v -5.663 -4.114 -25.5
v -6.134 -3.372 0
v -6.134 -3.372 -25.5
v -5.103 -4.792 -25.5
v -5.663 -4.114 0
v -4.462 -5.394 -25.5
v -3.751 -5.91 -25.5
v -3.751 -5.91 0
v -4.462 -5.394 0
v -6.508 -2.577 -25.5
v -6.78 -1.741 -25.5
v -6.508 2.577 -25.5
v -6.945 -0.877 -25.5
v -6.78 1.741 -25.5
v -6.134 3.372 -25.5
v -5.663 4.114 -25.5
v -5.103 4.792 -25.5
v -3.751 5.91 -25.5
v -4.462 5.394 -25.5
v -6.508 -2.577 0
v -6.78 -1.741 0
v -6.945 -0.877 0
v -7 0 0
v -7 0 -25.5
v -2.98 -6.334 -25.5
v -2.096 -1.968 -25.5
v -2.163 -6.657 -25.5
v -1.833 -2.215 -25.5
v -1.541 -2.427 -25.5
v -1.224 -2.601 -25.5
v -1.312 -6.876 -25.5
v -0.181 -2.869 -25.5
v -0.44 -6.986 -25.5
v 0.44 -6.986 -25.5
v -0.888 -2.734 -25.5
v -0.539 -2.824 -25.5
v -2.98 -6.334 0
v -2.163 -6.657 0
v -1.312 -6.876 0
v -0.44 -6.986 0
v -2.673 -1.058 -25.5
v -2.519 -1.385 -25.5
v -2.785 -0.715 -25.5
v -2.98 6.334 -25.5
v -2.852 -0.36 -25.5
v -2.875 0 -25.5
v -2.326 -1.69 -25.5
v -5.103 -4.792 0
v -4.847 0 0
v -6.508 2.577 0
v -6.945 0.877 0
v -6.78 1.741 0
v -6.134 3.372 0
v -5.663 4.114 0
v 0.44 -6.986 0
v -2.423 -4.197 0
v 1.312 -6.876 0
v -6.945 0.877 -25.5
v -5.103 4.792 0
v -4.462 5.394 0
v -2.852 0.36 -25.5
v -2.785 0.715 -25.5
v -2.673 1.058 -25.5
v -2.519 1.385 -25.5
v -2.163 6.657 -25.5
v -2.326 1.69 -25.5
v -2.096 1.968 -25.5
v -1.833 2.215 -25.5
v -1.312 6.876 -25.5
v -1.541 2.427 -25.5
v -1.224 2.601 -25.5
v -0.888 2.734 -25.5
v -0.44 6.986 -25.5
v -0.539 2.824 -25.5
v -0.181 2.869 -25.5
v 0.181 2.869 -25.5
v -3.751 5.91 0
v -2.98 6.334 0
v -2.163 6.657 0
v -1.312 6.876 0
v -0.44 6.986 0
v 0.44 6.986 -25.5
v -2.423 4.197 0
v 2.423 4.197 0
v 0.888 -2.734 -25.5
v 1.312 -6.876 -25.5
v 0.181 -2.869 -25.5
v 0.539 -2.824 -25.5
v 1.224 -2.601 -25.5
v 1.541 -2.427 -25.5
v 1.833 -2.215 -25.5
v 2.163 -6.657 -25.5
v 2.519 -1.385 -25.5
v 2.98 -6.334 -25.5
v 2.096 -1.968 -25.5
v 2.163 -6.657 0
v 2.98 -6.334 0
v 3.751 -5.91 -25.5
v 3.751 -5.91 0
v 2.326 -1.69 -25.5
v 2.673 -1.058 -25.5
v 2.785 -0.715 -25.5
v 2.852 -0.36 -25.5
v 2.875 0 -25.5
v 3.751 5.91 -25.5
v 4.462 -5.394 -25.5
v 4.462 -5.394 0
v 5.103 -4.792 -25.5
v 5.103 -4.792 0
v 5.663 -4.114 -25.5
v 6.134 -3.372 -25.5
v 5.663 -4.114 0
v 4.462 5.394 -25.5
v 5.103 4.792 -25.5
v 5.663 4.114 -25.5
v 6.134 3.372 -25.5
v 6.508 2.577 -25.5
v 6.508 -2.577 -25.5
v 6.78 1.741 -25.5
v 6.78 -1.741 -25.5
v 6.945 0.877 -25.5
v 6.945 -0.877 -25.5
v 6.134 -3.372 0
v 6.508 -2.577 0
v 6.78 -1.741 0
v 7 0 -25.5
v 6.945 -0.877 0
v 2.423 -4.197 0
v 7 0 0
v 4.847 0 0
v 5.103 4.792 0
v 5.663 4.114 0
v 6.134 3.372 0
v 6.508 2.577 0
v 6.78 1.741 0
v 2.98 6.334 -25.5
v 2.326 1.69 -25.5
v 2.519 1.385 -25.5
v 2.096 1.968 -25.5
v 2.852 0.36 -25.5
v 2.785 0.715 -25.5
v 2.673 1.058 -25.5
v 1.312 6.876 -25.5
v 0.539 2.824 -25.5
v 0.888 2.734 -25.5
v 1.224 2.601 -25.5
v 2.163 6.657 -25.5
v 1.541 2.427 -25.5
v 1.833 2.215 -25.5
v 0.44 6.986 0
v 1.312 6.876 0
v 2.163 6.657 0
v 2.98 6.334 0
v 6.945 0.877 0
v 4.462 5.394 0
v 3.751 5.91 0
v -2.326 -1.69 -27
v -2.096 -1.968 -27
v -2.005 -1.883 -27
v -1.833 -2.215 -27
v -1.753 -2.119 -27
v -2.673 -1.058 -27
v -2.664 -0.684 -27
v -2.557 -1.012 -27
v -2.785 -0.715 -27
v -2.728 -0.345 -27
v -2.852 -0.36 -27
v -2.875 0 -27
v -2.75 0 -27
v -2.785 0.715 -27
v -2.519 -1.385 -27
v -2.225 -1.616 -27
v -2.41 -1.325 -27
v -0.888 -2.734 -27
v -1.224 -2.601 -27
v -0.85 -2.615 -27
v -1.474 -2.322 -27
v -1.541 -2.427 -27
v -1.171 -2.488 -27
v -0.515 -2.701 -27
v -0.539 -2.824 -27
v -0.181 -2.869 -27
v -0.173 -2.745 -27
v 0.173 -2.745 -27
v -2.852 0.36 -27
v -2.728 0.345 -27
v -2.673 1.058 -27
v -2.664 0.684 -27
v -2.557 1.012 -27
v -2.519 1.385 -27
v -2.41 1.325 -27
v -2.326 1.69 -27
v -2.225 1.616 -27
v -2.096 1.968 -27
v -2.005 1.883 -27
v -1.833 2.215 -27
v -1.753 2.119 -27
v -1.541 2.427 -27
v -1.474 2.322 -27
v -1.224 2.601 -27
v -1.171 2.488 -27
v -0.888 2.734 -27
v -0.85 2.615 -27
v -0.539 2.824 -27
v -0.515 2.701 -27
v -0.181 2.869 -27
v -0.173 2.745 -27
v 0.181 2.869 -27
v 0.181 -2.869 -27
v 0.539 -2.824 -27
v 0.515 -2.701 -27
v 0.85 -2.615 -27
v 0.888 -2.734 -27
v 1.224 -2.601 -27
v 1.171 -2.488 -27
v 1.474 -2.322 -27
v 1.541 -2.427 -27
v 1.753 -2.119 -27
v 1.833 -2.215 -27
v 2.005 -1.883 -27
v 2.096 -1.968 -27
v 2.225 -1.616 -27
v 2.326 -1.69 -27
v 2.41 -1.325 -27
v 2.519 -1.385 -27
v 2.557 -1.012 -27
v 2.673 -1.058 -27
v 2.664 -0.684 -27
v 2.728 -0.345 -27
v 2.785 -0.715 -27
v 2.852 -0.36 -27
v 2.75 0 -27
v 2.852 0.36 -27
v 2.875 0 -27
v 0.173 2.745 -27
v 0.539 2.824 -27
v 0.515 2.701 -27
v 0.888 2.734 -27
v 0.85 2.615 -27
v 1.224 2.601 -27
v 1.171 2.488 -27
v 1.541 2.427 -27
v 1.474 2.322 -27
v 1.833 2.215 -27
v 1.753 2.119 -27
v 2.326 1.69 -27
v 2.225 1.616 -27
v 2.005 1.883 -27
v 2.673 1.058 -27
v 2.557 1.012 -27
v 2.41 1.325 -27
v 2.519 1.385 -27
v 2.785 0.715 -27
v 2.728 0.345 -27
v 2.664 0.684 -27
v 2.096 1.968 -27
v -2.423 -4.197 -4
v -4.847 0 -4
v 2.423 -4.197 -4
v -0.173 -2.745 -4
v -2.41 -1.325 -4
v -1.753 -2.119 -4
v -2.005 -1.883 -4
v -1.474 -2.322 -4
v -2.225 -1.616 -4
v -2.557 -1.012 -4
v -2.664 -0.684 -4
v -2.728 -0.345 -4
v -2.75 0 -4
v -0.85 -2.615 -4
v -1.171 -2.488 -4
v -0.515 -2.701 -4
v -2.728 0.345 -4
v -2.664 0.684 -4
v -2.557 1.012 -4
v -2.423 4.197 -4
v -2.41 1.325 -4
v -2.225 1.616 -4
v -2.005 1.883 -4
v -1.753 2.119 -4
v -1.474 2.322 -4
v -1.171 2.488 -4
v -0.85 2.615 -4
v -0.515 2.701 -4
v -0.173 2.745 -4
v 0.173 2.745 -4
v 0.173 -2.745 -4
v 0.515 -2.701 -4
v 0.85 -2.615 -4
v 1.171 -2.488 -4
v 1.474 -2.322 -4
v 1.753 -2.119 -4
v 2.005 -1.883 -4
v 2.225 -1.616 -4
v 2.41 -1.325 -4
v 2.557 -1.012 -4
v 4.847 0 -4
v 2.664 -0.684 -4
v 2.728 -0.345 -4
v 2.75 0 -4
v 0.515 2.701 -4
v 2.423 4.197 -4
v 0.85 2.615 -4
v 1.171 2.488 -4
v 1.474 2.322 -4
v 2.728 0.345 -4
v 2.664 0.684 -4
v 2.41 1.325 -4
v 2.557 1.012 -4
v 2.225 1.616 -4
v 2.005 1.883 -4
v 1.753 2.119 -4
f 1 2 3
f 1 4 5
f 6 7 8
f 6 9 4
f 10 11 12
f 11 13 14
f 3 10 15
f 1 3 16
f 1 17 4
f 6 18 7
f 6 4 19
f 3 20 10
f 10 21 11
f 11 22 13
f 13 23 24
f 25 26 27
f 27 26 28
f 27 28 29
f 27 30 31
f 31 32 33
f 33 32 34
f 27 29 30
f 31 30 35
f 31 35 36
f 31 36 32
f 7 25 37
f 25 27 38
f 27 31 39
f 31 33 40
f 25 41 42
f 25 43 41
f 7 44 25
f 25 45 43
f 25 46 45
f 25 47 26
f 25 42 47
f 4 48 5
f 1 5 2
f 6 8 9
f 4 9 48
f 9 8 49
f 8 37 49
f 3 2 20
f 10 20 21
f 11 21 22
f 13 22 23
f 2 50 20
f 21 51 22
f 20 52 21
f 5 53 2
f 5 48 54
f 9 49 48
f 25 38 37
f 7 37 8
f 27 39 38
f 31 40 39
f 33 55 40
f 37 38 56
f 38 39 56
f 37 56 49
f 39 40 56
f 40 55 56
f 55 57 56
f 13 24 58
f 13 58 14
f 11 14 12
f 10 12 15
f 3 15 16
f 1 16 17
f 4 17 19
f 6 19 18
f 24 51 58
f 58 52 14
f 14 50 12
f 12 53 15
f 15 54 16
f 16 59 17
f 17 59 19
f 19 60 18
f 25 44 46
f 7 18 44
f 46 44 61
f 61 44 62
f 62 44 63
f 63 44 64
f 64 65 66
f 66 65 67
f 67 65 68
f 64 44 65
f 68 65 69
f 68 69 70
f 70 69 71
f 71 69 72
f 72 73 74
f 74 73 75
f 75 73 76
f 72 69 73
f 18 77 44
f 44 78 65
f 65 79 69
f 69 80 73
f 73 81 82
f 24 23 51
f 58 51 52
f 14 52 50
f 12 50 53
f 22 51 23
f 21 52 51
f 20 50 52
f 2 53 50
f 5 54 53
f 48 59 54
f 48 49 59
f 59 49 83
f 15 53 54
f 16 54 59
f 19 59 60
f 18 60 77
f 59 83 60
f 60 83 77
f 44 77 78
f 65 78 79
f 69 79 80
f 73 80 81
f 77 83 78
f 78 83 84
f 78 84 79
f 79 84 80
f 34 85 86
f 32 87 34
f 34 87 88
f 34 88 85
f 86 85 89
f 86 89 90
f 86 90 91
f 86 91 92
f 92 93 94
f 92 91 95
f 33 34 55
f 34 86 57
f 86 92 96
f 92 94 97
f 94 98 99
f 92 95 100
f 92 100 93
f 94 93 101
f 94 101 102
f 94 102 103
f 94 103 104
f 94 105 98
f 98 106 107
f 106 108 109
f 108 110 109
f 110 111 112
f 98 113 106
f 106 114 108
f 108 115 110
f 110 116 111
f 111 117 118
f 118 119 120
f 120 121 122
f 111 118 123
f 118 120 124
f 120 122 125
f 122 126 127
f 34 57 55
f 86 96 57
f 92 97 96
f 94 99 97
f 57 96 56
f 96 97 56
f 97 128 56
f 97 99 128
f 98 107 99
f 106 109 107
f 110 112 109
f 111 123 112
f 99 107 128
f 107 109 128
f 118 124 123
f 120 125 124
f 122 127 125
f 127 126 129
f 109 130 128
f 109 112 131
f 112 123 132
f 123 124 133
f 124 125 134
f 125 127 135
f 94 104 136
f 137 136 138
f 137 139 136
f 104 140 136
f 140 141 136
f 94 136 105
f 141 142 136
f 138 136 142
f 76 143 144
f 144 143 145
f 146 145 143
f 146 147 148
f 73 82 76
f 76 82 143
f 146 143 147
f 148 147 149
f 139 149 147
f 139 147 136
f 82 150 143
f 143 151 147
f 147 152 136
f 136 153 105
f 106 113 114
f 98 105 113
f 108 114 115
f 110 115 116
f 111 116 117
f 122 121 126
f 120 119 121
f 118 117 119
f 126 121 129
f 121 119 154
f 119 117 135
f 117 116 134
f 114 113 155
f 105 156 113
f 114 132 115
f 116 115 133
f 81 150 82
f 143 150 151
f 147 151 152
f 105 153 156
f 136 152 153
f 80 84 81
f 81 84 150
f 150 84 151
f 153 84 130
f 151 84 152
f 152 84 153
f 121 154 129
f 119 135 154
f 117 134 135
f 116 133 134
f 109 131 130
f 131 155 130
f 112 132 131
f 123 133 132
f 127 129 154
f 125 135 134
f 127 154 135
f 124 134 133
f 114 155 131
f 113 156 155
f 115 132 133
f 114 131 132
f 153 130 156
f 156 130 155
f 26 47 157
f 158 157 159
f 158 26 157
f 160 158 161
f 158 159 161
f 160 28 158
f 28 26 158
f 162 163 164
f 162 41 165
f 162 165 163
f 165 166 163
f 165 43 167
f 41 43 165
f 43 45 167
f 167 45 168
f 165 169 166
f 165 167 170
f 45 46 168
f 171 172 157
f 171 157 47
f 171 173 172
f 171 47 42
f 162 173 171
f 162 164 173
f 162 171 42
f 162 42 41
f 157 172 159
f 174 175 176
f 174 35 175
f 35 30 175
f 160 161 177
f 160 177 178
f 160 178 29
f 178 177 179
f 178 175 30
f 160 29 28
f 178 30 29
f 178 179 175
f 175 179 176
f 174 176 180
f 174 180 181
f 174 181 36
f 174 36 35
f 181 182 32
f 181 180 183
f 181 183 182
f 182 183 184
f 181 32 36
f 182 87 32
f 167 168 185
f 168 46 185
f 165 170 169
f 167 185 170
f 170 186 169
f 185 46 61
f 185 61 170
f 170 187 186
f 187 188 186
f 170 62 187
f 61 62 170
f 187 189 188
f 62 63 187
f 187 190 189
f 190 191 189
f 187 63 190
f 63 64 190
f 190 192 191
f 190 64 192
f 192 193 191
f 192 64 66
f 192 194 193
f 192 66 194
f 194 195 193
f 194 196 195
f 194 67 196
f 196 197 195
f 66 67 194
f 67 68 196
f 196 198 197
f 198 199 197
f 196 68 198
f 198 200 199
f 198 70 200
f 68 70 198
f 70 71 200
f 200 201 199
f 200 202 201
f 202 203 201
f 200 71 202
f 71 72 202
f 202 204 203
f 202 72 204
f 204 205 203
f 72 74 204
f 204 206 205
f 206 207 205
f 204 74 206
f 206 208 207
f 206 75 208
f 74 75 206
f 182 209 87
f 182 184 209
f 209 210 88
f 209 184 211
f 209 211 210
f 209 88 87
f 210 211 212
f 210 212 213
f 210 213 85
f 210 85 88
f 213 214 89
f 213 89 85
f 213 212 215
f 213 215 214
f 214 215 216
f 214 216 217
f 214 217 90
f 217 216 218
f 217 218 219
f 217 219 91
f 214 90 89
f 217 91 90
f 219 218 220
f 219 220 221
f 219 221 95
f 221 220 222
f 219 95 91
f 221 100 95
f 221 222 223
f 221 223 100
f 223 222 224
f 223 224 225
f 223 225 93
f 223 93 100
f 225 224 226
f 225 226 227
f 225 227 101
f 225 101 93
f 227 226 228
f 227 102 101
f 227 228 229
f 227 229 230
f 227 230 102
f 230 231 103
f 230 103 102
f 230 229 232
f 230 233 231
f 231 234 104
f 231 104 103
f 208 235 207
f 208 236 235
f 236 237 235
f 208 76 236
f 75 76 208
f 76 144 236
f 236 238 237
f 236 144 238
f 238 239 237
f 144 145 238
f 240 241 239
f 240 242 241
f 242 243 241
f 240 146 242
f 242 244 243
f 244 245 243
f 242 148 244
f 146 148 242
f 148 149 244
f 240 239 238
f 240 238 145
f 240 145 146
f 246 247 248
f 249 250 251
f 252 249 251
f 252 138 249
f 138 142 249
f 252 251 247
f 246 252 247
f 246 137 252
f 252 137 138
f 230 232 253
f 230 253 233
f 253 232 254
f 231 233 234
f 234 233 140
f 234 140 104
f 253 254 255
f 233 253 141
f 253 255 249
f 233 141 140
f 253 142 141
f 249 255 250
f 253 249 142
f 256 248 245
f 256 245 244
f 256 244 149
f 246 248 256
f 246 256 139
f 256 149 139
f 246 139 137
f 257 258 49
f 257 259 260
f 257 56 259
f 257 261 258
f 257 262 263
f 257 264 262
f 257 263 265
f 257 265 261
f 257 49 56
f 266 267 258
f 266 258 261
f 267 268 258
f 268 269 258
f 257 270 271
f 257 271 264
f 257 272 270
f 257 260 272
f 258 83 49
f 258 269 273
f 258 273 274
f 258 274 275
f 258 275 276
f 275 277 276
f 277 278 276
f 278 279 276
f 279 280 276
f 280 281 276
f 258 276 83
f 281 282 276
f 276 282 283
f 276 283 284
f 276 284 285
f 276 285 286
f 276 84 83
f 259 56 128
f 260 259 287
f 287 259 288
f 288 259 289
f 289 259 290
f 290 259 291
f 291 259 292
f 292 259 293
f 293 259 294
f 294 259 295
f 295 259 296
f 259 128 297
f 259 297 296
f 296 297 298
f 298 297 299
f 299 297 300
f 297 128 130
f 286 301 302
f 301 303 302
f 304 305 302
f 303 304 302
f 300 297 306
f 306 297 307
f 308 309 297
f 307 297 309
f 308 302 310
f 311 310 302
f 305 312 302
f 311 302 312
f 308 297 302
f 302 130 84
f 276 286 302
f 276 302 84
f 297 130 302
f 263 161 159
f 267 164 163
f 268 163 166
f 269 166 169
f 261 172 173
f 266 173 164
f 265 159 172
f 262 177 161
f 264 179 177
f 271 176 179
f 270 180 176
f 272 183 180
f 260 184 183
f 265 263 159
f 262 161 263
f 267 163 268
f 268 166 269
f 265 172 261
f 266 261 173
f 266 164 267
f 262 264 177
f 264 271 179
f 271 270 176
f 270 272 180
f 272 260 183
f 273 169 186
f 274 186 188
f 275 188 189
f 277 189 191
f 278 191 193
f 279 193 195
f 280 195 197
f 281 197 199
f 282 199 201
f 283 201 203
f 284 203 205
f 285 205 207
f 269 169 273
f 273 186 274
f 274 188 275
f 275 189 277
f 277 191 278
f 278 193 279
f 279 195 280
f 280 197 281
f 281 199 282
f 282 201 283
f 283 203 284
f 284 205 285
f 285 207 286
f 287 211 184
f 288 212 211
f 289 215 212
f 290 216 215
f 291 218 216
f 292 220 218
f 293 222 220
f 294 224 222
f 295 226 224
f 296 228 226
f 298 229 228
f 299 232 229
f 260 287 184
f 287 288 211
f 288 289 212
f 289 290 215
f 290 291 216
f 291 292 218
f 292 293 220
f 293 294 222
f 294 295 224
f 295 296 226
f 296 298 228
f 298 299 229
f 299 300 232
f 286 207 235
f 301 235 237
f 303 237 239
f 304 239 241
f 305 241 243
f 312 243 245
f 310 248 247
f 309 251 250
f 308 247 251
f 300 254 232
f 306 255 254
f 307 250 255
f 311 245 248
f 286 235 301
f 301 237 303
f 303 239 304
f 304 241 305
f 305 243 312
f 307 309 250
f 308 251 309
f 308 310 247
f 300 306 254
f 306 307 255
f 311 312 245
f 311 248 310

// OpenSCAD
$fn = 50;

difference() {
	union() {
		translate(v = [0, 0, -25.5]) {
			cylinder(h = 25.5, r = 7.0);
		}
		#translate(v = [0, 0, -27.0]) {
			cylinder(h = 27, r = 2.875);
		}
	}
	union() {
		translate(v = [0, 0, 0]) {
			rotate(a = [0, 0, 0]) {
				difference() {
					union() {
						translate(v = [0, 0, -4]) {
							linear_extrude(height = 4) {
								polygon(points = [[4.8468, 0.0], [2.4234000000000004, 4.197451927062417], [-2.423399999999999, 4.197451927062417], [-4.8468, 5.935618106107392e-16], [-2.423400000000002, -4.197451927062416], [2.423399999999997, -4.197451927062419]]);
							}
						}
					}
					union();
				}
			}
		}
		#translate(v = [0, 0, -100.0]) {
			cylinder(h = 200, r = 2.75);
		}
	}
}
